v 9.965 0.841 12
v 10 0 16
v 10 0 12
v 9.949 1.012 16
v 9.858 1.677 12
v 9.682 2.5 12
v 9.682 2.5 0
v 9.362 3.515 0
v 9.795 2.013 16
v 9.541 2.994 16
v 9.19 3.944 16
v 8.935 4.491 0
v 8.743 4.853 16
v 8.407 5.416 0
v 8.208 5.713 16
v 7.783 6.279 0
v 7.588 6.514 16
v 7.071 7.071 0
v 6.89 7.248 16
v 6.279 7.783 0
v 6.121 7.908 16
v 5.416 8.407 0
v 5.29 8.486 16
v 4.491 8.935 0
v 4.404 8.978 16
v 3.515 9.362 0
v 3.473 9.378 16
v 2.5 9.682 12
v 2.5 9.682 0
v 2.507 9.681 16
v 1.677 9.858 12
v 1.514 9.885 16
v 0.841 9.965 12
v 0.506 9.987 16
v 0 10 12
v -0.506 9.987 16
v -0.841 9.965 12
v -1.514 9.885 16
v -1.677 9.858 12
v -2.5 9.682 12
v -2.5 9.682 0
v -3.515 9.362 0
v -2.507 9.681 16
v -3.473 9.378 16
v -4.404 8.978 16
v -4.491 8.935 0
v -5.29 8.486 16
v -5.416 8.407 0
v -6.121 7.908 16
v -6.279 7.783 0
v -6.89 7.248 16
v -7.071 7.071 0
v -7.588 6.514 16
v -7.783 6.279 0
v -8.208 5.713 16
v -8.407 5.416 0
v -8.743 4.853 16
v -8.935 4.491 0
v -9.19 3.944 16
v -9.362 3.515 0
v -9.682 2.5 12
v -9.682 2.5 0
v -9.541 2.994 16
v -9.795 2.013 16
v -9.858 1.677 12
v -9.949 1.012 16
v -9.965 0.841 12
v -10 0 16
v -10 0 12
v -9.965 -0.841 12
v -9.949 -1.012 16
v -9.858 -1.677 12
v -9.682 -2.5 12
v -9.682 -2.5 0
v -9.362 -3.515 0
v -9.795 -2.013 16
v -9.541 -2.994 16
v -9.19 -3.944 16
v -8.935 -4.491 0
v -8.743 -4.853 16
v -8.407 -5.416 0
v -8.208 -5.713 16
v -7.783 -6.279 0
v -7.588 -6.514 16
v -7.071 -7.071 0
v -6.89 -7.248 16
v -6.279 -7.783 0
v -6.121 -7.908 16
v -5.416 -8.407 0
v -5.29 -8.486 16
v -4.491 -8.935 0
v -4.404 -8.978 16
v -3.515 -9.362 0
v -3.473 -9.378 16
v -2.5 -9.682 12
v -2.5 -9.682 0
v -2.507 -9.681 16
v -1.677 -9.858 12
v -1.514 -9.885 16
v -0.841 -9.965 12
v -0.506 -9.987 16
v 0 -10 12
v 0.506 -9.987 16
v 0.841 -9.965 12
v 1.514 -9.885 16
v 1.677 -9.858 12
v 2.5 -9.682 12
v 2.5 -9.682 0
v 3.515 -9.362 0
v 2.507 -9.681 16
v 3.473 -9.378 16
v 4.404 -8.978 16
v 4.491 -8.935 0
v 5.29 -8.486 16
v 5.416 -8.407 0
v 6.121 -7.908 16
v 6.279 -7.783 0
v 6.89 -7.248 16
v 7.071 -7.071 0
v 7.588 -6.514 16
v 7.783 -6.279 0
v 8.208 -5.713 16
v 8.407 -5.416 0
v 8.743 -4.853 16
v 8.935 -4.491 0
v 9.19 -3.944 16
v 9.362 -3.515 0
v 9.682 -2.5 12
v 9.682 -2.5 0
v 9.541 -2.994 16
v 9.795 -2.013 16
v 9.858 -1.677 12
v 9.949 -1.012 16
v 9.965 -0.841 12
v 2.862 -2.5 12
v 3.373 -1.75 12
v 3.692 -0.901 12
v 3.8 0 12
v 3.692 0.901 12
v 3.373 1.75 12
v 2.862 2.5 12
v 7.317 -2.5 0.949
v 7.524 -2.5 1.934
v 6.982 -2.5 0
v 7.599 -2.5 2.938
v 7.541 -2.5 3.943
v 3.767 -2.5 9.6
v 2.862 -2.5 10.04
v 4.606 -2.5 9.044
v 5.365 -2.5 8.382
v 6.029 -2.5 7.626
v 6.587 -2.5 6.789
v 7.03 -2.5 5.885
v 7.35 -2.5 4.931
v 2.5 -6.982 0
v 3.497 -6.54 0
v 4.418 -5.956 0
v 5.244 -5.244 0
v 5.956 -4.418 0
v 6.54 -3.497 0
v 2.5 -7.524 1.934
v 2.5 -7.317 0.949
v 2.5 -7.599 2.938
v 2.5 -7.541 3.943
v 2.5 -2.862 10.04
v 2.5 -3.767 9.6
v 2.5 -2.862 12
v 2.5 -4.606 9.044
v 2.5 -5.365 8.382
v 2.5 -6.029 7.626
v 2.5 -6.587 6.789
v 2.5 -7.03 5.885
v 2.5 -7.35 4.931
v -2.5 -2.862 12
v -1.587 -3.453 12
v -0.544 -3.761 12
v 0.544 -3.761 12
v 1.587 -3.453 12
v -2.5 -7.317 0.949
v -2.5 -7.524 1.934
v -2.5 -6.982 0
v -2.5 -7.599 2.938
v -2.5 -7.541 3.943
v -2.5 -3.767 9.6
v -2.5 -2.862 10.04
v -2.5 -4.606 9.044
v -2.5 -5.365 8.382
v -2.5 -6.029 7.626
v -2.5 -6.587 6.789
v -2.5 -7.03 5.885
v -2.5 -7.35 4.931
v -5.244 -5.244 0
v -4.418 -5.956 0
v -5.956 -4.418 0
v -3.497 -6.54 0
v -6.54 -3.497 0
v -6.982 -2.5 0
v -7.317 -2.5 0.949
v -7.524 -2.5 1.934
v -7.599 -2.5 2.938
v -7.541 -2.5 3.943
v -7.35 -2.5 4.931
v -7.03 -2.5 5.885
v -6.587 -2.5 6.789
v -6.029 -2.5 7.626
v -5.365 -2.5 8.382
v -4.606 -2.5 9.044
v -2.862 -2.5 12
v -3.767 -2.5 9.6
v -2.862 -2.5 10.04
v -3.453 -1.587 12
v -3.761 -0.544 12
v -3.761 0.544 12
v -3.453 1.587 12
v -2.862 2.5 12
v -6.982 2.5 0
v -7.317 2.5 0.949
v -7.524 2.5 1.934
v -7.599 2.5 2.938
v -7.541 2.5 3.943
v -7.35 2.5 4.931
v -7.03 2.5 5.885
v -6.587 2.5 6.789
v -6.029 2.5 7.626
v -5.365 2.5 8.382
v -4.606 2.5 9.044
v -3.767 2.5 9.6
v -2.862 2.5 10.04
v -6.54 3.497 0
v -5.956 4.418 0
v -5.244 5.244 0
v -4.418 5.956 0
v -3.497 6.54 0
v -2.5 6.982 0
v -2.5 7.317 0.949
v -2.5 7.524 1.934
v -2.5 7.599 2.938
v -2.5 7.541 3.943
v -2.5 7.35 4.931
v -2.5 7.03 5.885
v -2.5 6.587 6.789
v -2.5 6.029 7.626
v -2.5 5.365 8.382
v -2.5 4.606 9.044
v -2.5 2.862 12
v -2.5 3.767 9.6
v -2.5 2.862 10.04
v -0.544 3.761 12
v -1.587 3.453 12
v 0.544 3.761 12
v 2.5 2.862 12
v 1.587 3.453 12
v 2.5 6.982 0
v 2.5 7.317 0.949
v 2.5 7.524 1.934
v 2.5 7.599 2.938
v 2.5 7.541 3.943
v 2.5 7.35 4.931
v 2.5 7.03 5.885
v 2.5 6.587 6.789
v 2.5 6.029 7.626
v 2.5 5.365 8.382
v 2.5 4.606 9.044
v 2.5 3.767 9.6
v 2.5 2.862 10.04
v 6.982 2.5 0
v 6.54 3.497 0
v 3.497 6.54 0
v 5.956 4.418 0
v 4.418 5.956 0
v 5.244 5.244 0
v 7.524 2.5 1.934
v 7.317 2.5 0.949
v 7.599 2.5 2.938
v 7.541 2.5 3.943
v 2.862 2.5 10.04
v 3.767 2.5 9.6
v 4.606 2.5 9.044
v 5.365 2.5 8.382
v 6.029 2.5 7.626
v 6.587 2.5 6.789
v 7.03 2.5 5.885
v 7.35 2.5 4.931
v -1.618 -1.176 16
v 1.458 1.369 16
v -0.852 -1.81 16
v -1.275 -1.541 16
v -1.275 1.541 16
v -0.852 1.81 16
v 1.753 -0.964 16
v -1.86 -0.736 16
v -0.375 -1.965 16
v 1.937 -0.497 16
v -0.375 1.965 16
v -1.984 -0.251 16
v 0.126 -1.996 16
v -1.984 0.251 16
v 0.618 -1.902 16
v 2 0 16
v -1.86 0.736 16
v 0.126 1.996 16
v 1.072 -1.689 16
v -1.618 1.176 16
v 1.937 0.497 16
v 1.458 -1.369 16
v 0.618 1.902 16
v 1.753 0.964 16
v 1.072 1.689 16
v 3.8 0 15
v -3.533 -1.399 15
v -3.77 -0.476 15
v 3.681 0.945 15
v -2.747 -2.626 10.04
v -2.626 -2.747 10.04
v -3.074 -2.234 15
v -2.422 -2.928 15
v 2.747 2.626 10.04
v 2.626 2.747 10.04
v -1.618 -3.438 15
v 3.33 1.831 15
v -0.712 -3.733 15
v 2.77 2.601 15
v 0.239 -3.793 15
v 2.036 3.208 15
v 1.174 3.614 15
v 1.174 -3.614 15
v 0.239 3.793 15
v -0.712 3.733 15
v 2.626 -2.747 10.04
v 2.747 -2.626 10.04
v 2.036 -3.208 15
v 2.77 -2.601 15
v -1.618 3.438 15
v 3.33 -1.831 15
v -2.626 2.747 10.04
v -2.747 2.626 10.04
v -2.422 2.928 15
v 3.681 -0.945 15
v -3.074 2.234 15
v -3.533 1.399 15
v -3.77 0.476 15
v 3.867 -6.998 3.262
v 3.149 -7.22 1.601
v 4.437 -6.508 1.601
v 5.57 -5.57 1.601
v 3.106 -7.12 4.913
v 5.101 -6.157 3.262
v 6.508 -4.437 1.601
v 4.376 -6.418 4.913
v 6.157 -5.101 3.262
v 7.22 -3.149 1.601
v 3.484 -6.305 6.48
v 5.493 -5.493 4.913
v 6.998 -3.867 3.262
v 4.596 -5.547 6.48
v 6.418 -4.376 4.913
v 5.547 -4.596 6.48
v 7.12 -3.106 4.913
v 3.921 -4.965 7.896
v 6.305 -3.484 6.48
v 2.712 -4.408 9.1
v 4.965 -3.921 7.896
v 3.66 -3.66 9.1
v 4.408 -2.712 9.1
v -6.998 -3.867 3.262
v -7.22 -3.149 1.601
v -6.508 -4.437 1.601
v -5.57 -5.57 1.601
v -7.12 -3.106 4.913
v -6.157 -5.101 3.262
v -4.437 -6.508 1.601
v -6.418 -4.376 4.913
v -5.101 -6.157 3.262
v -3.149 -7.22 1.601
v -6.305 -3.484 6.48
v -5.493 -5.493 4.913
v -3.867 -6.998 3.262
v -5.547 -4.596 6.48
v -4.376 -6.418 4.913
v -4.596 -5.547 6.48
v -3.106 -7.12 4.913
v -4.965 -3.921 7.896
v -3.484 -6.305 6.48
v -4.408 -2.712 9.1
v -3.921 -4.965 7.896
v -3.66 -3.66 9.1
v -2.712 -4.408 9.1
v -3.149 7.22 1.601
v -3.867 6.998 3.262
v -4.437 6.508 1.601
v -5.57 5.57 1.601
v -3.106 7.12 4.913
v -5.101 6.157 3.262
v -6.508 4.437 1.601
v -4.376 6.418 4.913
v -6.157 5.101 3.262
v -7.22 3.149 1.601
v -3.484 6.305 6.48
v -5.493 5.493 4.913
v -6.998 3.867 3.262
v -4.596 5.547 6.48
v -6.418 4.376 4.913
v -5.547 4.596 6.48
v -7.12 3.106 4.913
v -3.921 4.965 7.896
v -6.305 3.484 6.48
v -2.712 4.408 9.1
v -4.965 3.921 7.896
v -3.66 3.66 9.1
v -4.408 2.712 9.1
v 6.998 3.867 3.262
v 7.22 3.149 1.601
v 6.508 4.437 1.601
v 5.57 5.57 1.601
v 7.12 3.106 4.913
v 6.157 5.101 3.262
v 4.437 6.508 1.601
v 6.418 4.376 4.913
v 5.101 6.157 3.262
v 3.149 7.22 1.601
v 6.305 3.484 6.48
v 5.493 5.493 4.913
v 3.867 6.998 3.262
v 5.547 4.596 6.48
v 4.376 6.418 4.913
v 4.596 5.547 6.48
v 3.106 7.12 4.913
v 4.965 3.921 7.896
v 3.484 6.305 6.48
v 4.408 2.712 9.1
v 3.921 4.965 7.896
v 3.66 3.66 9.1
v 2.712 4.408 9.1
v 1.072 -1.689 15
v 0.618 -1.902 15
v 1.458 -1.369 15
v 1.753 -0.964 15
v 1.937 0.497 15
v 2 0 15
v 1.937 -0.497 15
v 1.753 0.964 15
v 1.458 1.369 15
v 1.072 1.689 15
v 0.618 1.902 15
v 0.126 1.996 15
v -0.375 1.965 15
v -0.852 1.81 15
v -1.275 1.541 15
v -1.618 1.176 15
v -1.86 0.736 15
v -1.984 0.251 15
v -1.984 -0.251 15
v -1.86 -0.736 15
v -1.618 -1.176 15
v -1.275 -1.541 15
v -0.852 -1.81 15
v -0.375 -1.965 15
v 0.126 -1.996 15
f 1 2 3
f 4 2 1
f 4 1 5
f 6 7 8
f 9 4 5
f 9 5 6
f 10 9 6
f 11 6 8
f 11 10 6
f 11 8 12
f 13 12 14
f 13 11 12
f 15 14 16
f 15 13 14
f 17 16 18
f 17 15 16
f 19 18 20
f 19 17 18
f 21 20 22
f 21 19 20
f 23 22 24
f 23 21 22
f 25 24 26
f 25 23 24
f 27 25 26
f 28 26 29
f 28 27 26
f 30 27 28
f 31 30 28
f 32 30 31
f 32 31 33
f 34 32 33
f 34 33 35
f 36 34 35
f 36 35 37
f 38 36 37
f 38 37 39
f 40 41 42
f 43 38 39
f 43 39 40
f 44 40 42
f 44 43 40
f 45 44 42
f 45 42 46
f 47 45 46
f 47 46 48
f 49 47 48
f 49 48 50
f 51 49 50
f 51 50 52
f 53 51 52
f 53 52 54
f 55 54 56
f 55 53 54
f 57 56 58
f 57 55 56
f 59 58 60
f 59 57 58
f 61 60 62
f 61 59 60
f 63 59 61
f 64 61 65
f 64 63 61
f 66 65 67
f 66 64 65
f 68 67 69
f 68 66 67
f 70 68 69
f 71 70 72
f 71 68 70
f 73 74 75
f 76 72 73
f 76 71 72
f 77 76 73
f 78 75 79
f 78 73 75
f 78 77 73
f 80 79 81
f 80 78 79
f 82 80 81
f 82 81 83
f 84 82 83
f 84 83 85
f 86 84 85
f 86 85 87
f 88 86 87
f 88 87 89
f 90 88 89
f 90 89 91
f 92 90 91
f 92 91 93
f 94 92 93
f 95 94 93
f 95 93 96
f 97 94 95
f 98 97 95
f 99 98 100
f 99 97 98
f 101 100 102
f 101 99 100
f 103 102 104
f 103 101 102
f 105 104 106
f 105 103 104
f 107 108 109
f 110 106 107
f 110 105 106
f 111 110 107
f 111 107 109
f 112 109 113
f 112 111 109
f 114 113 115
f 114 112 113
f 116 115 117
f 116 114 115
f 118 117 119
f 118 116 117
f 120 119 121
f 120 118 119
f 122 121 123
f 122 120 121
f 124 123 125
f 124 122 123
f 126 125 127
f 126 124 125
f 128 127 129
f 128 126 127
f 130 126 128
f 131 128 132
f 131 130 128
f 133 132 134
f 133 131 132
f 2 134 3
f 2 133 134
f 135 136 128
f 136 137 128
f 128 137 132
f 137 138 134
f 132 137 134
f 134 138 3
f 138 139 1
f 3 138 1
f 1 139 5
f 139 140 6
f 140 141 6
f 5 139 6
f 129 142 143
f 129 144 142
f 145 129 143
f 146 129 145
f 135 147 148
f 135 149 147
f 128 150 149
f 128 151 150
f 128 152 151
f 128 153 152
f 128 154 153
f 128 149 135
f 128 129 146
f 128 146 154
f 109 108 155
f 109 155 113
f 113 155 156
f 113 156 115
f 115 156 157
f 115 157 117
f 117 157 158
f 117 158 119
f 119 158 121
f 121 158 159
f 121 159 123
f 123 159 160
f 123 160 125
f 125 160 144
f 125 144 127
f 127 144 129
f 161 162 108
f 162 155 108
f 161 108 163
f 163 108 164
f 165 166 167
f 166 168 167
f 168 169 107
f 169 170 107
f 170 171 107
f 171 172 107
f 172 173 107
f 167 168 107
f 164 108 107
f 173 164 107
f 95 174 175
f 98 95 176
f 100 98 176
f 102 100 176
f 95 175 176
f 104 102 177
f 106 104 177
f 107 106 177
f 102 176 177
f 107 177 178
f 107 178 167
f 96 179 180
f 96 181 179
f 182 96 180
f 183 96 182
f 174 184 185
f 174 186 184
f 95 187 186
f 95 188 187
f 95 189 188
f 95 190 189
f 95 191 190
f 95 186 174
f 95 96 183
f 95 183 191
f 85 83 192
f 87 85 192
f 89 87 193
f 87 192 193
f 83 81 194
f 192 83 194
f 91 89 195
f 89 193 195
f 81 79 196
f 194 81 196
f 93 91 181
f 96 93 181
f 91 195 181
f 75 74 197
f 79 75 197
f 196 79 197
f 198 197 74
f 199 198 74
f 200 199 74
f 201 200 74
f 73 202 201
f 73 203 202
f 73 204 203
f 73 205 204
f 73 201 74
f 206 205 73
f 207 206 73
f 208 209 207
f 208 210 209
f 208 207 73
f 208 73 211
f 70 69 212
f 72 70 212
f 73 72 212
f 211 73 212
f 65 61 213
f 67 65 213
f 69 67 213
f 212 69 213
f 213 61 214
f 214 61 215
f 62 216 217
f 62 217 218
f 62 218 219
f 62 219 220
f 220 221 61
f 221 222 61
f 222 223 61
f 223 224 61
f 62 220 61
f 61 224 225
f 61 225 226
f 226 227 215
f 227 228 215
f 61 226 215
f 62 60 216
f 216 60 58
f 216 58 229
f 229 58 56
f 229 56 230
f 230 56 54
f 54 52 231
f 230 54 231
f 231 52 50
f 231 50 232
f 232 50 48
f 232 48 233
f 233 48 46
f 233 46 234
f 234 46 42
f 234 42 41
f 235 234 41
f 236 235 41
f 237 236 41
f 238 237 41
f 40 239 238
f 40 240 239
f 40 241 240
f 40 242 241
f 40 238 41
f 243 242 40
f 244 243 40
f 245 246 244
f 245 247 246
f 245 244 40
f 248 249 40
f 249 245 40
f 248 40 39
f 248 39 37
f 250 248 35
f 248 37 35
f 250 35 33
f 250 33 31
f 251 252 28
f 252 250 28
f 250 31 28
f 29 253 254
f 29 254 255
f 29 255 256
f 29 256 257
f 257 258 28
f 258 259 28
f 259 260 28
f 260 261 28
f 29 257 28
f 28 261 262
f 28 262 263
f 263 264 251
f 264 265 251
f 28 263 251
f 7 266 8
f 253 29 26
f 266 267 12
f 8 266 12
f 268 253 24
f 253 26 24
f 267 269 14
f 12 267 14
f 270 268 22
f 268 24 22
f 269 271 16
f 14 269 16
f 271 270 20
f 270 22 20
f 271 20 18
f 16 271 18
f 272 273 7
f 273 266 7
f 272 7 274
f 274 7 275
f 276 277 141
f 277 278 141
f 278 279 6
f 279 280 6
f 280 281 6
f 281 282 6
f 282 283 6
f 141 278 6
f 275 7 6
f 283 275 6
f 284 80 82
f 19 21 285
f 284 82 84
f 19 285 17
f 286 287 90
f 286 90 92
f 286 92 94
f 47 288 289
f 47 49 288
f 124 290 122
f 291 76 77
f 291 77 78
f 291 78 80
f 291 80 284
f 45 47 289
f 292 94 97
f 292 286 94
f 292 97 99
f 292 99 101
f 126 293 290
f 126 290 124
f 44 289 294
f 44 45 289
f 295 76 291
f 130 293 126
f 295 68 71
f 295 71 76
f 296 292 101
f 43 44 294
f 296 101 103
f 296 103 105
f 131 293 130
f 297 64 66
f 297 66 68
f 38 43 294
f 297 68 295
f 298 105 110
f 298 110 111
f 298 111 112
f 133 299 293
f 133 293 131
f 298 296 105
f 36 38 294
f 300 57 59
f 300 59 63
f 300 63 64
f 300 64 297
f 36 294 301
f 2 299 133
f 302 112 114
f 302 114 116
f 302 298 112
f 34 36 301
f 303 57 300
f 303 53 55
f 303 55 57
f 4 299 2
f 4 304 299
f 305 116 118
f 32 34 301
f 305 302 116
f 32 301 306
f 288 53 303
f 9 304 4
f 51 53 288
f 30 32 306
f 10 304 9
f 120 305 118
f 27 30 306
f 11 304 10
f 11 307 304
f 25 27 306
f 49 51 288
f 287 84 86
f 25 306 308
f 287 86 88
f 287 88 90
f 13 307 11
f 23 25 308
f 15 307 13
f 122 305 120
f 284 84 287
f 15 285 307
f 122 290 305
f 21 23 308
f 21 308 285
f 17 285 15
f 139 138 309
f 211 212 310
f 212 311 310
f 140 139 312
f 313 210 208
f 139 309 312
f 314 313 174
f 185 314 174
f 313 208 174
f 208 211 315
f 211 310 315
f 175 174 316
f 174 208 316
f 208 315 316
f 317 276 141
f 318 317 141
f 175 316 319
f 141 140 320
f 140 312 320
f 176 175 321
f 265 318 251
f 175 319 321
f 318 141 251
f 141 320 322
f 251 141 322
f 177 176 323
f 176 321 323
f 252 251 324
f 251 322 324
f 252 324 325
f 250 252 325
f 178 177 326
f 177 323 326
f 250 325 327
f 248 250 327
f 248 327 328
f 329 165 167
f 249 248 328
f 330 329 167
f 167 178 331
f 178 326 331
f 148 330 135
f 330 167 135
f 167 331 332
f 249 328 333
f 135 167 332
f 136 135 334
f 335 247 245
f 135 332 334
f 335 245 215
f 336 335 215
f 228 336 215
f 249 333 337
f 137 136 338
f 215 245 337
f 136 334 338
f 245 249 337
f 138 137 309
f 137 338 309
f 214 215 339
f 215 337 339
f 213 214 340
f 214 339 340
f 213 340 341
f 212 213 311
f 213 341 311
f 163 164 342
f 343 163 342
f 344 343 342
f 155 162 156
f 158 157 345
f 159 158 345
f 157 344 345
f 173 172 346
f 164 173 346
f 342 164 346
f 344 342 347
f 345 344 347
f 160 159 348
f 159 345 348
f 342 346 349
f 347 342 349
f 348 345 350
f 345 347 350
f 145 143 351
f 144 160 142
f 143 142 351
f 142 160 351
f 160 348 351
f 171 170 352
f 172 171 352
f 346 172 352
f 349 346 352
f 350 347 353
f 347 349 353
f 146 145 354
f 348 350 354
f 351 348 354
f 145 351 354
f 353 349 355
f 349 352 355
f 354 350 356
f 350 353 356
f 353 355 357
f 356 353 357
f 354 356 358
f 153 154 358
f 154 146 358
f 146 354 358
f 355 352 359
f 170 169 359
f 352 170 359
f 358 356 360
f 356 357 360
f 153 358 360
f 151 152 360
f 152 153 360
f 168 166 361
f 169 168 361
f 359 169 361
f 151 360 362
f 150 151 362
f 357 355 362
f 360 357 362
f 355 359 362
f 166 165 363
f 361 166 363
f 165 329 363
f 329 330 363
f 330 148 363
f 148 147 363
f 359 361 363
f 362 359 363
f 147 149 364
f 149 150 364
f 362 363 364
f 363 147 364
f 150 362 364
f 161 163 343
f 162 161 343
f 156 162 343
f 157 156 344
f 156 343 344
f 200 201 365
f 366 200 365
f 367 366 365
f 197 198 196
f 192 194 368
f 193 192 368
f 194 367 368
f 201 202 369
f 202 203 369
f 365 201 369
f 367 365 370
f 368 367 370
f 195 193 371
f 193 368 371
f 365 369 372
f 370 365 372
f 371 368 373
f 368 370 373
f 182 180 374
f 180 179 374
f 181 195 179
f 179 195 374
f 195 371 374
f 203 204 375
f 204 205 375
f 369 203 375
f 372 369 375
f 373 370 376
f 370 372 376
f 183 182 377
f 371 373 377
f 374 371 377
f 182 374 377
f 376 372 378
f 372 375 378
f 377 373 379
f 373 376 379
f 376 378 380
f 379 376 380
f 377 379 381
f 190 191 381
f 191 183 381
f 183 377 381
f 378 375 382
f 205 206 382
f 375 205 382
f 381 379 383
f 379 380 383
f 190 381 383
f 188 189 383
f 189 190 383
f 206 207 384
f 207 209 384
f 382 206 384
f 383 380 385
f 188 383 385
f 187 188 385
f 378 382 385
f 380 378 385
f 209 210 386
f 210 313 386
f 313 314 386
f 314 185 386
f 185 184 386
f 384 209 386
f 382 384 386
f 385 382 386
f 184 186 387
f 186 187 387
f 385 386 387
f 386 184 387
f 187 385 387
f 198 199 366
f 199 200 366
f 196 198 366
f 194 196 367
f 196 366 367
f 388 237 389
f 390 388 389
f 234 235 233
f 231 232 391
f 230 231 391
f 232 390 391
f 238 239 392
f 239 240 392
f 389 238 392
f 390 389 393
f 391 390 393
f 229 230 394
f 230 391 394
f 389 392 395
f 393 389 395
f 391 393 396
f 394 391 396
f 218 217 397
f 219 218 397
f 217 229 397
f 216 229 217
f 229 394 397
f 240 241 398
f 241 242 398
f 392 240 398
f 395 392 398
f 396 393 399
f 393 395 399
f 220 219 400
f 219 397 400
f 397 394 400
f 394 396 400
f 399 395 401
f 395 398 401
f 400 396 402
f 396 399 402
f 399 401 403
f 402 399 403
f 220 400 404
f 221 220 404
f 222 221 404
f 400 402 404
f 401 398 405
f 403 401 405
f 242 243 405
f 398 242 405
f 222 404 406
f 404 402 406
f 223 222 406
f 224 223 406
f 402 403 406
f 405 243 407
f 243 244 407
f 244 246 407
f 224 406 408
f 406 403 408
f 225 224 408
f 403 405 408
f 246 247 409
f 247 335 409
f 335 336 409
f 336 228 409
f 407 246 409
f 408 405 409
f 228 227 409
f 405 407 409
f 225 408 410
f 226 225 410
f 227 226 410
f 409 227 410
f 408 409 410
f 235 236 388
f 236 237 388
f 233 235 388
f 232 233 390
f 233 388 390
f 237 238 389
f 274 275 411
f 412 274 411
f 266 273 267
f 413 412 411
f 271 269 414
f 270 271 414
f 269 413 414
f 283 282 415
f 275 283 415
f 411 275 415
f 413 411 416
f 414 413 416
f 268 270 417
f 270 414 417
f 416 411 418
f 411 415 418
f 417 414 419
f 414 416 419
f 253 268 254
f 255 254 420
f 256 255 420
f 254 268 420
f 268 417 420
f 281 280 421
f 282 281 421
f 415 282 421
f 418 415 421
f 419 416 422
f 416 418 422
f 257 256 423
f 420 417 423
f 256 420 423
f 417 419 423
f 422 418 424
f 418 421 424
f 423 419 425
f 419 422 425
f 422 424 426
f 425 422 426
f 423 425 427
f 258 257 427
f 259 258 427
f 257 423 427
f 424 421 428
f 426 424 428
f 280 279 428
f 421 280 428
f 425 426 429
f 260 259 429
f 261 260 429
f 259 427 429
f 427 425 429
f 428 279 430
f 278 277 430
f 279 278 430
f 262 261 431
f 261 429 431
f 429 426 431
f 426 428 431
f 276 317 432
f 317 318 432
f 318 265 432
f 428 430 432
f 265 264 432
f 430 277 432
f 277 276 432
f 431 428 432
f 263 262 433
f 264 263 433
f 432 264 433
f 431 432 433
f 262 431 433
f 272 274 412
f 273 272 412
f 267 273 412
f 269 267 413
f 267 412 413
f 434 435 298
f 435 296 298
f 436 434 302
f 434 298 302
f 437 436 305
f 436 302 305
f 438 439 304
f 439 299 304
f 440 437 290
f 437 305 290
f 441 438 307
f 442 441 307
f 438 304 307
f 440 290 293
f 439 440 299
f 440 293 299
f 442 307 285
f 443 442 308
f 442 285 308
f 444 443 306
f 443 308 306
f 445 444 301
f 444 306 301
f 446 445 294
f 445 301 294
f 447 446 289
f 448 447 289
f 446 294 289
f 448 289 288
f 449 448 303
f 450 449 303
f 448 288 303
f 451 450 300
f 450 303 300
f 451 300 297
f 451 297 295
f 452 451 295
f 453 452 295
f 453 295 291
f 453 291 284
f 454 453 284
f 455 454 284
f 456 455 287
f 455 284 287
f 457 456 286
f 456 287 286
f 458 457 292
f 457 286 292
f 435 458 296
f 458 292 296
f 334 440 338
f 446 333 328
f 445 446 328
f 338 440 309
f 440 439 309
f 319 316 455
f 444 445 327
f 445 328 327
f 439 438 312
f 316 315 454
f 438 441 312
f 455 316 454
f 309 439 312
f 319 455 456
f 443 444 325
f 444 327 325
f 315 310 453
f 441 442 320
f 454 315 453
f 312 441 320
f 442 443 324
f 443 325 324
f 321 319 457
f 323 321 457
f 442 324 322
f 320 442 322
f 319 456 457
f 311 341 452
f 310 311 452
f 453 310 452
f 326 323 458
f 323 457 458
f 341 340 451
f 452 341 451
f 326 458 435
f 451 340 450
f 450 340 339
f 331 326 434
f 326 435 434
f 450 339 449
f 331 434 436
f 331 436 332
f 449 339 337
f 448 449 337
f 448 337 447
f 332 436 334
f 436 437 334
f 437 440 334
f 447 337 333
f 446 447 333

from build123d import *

# Parameters (mm, degrees)
CYLINDER002_R       = 3.8
CYLINDER002_DEPTH   = 15
CYLINDER001_R       = 2
CYLINDER001_DEPTH   = 16
BOX001_W            = 5
BOX001_H            = 20
BOX001_DEPTH        = 12
BOX_W               = 5
BOX_H               = 20
BOX_DEPTH           = 12
BOX_PLACEMENT_ANGLE = 90
CYLINDER_R          = 10
CYLINDER_DEPTH      = 16


with BuildPart() as cilindro002:
    # Cylinder002 → Cylinder002 (new body)
    with BuildSketch(Plane.XY):
        Circle(CYLINDER002_R)
    extrude(amount=CYLINDER002_DEPTH)


with BuildPart() as fusion001:
    # Cylinder001 → Cylinder001 (new body)
    with BuildSketch(Plane.XY):
        Circle(CYLINDER001_R)
    extrude(amount=CYLINDER001_DEPTH)

    # Fusion001: union Cilindro002
    add(cilindro002.part)


with BuildPart() as cubo001:
    # Box001 → Box001 (new body)
    with BuildSketch(Plane(origin=(-2.5, -10, 0), x_dir=(1, 0, 0), z_dir=(0, 0, 1))):
        with Locations((2.5, 10)):
            Rectangle(BOX001_W, BOX001_H)
    extrude(amount=BOX001_DEPTH)


with BuildPart() as fusion:
    # Box → Box (new body)
    with BuildSketch(Plane.XY):
        with Locations((2.5, 10)):
            Rectangle(BOX_W, BOX_H)
    extrude(amount=BOX_DEPTH)


with BuildPart() as fusion_1:
    # Box placement: moved
    add(fusion.part.moved(Location((10, -2.5, 0))).rotate(Axis((10, -2.5, 0), (0, 0, 1)), BOX_PLACEMENT_ANGLE))

    # Fusion: union Cubo001
    add(cubo001.part)


with BuildPart() as esfera:
    # Sphere → Sphere (revolve)
    with BuildSketch(Plane(origin=(0, 0, 3), x_dir=(1, 0, 0), z_dir=(0, -1, 0))):
        with BuildLine():
            ThreePointArc((0, -8), (8, 0), (0, 8))
            Line((0, 8), (0, -8))
        make_face()
    revolve(axis=Axis((0, 0, 3), (0, 0, 1)))


with BuildPart() as cut002:
    # Cylinder → Cylinder (new body)
    with BuildSketch(Plane.XY):
        Circle(CYLINDER_R)
    extrude(amount=CYLINDER_DEPTH)

    # Cut: cut Esfera
    add(esfera.part, mode=Mode.SUBTRACT)

    # Cut001: cut Fusion
    add(fusion_1.part, mode=Mode.SUBTRACT)

    # Cut002: cut Fusion001
    add(fusion001.part, mode=Mode.SUBTRACT)


solid = cut002.part
